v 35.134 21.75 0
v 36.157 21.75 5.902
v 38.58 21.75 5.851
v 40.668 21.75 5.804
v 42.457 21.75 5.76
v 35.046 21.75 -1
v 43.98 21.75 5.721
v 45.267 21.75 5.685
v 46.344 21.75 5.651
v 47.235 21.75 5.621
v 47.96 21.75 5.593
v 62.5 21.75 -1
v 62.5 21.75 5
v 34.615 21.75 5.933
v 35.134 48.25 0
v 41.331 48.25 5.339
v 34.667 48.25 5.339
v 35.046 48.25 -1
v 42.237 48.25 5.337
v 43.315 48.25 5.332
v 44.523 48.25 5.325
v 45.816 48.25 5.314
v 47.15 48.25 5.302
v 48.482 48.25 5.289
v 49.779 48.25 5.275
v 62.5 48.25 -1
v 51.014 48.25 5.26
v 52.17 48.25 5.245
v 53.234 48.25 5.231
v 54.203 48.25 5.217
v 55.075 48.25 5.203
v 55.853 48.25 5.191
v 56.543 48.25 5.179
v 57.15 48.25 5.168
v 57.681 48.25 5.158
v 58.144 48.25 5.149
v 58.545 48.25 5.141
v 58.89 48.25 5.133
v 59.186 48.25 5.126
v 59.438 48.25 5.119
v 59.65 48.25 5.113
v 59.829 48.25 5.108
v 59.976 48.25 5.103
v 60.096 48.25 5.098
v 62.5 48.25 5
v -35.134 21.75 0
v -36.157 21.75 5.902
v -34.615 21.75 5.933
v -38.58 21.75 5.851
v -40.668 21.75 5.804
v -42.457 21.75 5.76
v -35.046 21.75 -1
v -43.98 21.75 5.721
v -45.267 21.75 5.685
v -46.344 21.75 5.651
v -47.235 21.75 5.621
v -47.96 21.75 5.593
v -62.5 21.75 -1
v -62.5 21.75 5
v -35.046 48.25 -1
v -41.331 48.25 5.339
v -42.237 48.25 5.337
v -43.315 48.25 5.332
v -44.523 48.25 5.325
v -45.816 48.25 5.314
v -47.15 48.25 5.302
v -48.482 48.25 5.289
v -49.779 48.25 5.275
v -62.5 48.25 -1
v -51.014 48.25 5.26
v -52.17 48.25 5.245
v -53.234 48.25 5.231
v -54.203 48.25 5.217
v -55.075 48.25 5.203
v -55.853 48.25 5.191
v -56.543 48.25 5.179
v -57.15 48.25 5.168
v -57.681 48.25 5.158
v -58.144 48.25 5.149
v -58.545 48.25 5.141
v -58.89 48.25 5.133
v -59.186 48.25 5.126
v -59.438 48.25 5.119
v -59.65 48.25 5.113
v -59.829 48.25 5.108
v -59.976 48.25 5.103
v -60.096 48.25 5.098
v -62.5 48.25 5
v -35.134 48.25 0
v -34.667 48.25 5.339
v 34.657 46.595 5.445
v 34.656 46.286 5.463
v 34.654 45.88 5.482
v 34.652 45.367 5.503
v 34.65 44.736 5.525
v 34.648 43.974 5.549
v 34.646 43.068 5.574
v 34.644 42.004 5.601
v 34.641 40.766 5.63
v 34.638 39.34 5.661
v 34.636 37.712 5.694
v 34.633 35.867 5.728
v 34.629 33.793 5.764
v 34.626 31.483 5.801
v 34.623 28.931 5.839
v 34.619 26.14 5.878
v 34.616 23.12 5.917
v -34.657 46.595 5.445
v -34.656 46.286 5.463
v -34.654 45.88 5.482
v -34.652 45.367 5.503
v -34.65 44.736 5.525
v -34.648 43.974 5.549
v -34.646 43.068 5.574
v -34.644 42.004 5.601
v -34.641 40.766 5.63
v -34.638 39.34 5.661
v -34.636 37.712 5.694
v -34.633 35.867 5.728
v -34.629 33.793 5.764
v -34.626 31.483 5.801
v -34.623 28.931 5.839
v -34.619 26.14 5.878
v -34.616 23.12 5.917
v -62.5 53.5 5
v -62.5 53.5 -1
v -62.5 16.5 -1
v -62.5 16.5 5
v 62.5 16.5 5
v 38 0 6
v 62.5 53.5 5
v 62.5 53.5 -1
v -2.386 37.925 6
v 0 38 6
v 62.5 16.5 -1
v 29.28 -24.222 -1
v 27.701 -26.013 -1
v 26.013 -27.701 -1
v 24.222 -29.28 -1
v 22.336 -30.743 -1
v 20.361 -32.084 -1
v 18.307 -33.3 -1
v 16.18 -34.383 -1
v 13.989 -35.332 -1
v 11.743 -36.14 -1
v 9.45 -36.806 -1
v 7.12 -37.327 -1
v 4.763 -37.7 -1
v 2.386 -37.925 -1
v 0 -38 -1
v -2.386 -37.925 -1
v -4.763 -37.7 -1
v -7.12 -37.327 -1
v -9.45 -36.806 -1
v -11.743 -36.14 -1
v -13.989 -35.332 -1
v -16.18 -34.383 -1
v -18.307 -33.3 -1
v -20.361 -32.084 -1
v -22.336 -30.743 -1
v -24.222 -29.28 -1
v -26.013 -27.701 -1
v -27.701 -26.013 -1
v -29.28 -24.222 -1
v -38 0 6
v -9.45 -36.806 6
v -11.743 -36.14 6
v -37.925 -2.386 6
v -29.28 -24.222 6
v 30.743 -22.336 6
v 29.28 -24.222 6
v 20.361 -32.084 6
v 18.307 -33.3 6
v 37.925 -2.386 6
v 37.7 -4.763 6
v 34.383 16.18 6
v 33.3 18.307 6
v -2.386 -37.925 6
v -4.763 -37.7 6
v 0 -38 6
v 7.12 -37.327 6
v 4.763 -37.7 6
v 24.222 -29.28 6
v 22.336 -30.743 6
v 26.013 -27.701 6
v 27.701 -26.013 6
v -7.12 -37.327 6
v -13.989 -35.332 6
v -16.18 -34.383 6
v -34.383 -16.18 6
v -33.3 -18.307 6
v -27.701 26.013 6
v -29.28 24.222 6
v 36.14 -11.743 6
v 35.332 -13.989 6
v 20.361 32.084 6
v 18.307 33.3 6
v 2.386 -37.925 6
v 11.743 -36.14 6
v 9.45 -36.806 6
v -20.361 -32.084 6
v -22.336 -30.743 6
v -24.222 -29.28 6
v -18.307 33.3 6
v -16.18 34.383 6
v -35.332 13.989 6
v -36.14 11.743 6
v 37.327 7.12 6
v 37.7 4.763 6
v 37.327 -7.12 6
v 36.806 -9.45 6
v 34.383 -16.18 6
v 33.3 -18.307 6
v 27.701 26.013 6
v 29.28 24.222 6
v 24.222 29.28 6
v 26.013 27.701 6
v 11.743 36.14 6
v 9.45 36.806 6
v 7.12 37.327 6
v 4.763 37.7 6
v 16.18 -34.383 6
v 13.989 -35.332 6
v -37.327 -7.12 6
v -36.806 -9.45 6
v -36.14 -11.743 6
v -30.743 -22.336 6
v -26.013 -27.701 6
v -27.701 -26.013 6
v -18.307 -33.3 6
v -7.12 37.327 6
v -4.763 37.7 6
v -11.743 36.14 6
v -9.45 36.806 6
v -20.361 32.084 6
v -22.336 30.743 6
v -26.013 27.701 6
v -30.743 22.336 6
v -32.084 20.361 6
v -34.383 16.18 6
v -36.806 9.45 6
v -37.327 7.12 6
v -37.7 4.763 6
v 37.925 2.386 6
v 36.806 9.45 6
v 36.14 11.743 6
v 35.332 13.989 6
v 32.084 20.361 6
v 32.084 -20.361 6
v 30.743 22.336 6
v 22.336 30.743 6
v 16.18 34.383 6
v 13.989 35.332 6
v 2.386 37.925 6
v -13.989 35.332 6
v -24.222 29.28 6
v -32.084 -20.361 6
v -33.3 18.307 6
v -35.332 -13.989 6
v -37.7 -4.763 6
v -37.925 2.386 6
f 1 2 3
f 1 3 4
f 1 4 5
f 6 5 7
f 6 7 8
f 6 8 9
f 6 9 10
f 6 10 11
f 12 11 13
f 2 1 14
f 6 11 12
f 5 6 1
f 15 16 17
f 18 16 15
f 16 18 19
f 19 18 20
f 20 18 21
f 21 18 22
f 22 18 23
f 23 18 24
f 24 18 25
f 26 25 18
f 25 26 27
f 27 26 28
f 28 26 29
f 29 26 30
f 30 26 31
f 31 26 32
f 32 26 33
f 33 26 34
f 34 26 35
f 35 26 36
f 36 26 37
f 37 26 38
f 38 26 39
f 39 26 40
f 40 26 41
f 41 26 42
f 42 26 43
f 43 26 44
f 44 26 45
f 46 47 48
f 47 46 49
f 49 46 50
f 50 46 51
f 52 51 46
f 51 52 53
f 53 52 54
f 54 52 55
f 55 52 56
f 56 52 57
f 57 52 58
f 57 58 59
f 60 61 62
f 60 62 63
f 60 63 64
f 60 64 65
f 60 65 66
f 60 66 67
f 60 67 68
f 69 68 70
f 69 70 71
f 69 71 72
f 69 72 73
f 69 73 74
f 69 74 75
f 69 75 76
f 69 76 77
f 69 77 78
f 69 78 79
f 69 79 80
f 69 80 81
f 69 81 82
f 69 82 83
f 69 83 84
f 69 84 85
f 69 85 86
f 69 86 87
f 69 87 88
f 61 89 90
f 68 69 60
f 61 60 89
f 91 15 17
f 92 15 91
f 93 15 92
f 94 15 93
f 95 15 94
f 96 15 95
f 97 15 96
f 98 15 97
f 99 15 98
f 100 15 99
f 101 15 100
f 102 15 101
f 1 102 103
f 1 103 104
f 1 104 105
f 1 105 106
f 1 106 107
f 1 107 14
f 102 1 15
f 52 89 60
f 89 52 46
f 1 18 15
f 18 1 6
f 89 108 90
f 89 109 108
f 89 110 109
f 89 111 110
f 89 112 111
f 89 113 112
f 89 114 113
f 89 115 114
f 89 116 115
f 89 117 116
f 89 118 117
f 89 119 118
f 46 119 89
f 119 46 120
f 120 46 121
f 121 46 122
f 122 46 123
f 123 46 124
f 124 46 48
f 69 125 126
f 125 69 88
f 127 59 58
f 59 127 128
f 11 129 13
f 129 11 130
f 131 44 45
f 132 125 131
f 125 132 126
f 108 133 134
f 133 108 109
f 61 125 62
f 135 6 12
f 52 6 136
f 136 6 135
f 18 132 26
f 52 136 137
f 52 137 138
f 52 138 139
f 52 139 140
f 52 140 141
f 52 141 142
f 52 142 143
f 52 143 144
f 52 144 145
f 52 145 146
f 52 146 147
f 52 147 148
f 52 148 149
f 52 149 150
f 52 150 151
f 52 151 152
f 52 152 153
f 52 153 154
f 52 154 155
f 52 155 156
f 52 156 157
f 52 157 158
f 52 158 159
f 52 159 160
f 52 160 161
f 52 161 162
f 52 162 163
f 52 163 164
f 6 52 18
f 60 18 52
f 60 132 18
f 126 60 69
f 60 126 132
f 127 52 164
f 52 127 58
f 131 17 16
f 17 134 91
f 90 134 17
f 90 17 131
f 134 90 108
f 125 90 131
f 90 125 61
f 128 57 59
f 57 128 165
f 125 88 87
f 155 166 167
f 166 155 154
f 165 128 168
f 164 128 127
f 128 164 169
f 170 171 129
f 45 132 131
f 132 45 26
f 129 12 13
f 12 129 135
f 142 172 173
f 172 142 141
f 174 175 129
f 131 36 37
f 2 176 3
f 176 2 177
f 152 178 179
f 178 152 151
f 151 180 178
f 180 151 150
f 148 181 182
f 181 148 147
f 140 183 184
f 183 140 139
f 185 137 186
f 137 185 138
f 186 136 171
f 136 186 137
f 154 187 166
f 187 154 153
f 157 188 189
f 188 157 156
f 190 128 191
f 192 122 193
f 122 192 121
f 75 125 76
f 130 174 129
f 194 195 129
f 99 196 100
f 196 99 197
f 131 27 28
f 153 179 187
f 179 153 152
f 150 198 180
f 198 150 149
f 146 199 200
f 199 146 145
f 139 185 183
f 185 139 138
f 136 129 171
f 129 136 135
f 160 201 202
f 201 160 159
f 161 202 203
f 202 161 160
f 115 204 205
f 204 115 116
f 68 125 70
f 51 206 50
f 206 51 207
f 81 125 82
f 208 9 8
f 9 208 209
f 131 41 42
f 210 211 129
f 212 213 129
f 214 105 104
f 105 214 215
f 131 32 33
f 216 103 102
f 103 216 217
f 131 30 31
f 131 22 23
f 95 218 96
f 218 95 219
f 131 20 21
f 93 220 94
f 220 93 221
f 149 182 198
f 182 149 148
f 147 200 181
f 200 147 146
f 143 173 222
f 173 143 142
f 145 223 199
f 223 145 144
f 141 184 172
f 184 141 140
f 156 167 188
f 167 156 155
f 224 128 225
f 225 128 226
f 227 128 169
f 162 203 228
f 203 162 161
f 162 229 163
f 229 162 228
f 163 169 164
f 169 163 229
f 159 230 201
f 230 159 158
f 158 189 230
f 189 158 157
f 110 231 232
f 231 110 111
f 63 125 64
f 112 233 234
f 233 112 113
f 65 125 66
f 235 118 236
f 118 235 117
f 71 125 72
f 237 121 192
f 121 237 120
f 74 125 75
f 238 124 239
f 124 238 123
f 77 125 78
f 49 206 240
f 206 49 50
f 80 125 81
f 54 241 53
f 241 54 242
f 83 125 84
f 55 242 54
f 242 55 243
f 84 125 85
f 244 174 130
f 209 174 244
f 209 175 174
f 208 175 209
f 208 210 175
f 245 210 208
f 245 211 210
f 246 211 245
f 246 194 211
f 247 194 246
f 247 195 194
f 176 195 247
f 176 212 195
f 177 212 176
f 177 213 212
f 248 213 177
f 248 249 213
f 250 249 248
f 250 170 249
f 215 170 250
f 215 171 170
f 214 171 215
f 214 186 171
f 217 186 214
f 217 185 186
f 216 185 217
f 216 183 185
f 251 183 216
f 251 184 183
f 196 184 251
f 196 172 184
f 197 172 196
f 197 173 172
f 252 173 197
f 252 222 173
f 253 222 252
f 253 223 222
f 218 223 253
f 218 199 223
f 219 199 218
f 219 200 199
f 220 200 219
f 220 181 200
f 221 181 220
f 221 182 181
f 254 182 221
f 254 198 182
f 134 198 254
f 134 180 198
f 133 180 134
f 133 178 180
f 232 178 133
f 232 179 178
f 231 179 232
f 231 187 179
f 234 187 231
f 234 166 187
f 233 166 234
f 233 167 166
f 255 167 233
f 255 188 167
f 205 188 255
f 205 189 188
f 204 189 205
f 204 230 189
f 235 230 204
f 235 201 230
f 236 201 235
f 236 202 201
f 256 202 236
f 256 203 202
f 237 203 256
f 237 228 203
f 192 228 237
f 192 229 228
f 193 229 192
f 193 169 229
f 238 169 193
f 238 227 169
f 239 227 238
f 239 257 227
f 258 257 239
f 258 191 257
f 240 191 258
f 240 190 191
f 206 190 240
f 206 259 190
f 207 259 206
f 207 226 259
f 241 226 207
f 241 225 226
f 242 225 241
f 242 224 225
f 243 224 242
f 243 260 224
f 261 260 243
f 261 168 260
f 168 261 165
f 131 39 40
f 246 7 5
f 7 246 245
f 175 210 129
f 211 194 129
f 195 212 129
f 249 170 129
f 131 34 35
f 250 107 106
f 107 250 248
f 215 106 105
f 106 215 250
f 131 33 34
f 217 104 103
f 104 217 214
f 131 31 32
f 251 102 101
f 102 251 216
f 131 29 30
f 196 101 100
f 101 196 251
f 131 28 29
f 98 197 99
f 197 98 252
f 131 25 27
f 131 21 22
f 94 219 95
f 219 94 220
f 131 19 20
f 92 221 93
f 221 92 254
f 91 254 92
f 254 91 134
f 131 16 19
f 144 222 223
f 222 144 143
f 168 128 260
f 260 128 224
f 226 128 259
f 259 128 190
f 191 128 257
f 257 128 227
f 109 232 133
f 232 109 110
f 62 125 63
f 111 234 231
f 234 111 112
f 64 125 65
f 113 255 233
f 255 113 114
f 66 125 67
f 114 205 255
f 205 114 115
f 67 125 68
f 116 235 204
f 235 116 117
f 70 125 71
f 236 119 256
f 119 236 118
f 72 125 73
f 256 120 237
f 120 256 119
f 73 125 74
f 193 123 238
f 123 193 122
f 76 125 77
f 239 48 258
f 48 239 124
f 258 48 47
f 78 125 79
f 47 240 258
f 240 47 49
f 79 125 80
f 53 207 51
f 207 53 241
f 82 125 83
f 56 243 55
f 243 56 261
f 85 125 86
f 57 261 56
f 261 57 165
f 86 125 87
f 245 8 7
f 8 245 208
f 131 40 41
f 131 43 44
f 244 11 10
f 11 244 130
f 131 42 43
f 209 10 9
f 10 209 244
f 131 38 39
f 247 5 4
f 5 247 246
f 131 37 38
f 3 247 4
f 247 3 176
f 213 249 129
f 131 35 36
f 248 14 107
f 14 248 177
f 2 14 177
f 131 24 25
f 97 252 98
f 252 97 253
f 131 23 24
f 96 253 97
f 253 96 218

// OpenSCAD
$fn = 100;

cubetolx = 5;
cubetoly = 1.5;
cubecut = 25; // 2.5cm
cubespacing = 75; // 7.5cm
cubegrip = 3; // 2cm

holderw = cubespacing+cubecut*2;
holderh = 5;

bottlew = 70; // 6.6cm
bottleholderh = 5; // 4cm

mountoffset=0;
wall = 3;

//rotate([0,45,0])
difference()
{
    hull()
    {
        translate([0,0,0-1])
        hull()
        {
            cylinder(h=holderh+1, r=bottlew/2+wall);
            translate([0,bottlew/2-mountoffset,(holderh+1)/2])
                cube([holderw, cubecut+wall*2+cubegrip*2, (holderh+1)], center = true);
        }
        cylinder(h=bottleholderh+1, r=bottlew/2+wall);
    }
    
    if(0)
    hull()
    {
        translate([0,0,4])
        cylinder(h=bottleholderh+1+1, r=bottlew/2);
        cylinder(h=0.5, r=bottlew/2-2);
    }
    
    for(deg = [-45 : 10 : +45])
    rotate([0,deg,0])
    union()
    {
        translate([cubespacing/2+cubecut/2,bottlew/2-mountoffset,(holderh+1)/2-1])
            cube([cubecut+cubetolx, cubecut+cubetoly, (holderh+3-1)+10], center = true);
        translate([-cubespacing/2-cubecut/2,bottlew/2-mountoffset,(holderh+1)/2-1])
            cube([cubecut+cubetolx, cubecut+cubetoly, (holderh+3-1)+10], center = true);
    }
    
    //cylinder(h=wall, r=bottlew*0.6/2, center=true);
}


%translate([cubespacing/2+cubecut/2,bottlew/2-mountoffset,(holderh+1)/2-1])
    cube([cubecut, cubecut, (holderh+3-1)+1000], center = true);
%translate([-cubespacing/2-cubecut/2,bottlew/2-mountoffset,(holderh+1)/2-1])
    cube([cubecut, cubecut, (holderh+3-1)+1000], center = true);
